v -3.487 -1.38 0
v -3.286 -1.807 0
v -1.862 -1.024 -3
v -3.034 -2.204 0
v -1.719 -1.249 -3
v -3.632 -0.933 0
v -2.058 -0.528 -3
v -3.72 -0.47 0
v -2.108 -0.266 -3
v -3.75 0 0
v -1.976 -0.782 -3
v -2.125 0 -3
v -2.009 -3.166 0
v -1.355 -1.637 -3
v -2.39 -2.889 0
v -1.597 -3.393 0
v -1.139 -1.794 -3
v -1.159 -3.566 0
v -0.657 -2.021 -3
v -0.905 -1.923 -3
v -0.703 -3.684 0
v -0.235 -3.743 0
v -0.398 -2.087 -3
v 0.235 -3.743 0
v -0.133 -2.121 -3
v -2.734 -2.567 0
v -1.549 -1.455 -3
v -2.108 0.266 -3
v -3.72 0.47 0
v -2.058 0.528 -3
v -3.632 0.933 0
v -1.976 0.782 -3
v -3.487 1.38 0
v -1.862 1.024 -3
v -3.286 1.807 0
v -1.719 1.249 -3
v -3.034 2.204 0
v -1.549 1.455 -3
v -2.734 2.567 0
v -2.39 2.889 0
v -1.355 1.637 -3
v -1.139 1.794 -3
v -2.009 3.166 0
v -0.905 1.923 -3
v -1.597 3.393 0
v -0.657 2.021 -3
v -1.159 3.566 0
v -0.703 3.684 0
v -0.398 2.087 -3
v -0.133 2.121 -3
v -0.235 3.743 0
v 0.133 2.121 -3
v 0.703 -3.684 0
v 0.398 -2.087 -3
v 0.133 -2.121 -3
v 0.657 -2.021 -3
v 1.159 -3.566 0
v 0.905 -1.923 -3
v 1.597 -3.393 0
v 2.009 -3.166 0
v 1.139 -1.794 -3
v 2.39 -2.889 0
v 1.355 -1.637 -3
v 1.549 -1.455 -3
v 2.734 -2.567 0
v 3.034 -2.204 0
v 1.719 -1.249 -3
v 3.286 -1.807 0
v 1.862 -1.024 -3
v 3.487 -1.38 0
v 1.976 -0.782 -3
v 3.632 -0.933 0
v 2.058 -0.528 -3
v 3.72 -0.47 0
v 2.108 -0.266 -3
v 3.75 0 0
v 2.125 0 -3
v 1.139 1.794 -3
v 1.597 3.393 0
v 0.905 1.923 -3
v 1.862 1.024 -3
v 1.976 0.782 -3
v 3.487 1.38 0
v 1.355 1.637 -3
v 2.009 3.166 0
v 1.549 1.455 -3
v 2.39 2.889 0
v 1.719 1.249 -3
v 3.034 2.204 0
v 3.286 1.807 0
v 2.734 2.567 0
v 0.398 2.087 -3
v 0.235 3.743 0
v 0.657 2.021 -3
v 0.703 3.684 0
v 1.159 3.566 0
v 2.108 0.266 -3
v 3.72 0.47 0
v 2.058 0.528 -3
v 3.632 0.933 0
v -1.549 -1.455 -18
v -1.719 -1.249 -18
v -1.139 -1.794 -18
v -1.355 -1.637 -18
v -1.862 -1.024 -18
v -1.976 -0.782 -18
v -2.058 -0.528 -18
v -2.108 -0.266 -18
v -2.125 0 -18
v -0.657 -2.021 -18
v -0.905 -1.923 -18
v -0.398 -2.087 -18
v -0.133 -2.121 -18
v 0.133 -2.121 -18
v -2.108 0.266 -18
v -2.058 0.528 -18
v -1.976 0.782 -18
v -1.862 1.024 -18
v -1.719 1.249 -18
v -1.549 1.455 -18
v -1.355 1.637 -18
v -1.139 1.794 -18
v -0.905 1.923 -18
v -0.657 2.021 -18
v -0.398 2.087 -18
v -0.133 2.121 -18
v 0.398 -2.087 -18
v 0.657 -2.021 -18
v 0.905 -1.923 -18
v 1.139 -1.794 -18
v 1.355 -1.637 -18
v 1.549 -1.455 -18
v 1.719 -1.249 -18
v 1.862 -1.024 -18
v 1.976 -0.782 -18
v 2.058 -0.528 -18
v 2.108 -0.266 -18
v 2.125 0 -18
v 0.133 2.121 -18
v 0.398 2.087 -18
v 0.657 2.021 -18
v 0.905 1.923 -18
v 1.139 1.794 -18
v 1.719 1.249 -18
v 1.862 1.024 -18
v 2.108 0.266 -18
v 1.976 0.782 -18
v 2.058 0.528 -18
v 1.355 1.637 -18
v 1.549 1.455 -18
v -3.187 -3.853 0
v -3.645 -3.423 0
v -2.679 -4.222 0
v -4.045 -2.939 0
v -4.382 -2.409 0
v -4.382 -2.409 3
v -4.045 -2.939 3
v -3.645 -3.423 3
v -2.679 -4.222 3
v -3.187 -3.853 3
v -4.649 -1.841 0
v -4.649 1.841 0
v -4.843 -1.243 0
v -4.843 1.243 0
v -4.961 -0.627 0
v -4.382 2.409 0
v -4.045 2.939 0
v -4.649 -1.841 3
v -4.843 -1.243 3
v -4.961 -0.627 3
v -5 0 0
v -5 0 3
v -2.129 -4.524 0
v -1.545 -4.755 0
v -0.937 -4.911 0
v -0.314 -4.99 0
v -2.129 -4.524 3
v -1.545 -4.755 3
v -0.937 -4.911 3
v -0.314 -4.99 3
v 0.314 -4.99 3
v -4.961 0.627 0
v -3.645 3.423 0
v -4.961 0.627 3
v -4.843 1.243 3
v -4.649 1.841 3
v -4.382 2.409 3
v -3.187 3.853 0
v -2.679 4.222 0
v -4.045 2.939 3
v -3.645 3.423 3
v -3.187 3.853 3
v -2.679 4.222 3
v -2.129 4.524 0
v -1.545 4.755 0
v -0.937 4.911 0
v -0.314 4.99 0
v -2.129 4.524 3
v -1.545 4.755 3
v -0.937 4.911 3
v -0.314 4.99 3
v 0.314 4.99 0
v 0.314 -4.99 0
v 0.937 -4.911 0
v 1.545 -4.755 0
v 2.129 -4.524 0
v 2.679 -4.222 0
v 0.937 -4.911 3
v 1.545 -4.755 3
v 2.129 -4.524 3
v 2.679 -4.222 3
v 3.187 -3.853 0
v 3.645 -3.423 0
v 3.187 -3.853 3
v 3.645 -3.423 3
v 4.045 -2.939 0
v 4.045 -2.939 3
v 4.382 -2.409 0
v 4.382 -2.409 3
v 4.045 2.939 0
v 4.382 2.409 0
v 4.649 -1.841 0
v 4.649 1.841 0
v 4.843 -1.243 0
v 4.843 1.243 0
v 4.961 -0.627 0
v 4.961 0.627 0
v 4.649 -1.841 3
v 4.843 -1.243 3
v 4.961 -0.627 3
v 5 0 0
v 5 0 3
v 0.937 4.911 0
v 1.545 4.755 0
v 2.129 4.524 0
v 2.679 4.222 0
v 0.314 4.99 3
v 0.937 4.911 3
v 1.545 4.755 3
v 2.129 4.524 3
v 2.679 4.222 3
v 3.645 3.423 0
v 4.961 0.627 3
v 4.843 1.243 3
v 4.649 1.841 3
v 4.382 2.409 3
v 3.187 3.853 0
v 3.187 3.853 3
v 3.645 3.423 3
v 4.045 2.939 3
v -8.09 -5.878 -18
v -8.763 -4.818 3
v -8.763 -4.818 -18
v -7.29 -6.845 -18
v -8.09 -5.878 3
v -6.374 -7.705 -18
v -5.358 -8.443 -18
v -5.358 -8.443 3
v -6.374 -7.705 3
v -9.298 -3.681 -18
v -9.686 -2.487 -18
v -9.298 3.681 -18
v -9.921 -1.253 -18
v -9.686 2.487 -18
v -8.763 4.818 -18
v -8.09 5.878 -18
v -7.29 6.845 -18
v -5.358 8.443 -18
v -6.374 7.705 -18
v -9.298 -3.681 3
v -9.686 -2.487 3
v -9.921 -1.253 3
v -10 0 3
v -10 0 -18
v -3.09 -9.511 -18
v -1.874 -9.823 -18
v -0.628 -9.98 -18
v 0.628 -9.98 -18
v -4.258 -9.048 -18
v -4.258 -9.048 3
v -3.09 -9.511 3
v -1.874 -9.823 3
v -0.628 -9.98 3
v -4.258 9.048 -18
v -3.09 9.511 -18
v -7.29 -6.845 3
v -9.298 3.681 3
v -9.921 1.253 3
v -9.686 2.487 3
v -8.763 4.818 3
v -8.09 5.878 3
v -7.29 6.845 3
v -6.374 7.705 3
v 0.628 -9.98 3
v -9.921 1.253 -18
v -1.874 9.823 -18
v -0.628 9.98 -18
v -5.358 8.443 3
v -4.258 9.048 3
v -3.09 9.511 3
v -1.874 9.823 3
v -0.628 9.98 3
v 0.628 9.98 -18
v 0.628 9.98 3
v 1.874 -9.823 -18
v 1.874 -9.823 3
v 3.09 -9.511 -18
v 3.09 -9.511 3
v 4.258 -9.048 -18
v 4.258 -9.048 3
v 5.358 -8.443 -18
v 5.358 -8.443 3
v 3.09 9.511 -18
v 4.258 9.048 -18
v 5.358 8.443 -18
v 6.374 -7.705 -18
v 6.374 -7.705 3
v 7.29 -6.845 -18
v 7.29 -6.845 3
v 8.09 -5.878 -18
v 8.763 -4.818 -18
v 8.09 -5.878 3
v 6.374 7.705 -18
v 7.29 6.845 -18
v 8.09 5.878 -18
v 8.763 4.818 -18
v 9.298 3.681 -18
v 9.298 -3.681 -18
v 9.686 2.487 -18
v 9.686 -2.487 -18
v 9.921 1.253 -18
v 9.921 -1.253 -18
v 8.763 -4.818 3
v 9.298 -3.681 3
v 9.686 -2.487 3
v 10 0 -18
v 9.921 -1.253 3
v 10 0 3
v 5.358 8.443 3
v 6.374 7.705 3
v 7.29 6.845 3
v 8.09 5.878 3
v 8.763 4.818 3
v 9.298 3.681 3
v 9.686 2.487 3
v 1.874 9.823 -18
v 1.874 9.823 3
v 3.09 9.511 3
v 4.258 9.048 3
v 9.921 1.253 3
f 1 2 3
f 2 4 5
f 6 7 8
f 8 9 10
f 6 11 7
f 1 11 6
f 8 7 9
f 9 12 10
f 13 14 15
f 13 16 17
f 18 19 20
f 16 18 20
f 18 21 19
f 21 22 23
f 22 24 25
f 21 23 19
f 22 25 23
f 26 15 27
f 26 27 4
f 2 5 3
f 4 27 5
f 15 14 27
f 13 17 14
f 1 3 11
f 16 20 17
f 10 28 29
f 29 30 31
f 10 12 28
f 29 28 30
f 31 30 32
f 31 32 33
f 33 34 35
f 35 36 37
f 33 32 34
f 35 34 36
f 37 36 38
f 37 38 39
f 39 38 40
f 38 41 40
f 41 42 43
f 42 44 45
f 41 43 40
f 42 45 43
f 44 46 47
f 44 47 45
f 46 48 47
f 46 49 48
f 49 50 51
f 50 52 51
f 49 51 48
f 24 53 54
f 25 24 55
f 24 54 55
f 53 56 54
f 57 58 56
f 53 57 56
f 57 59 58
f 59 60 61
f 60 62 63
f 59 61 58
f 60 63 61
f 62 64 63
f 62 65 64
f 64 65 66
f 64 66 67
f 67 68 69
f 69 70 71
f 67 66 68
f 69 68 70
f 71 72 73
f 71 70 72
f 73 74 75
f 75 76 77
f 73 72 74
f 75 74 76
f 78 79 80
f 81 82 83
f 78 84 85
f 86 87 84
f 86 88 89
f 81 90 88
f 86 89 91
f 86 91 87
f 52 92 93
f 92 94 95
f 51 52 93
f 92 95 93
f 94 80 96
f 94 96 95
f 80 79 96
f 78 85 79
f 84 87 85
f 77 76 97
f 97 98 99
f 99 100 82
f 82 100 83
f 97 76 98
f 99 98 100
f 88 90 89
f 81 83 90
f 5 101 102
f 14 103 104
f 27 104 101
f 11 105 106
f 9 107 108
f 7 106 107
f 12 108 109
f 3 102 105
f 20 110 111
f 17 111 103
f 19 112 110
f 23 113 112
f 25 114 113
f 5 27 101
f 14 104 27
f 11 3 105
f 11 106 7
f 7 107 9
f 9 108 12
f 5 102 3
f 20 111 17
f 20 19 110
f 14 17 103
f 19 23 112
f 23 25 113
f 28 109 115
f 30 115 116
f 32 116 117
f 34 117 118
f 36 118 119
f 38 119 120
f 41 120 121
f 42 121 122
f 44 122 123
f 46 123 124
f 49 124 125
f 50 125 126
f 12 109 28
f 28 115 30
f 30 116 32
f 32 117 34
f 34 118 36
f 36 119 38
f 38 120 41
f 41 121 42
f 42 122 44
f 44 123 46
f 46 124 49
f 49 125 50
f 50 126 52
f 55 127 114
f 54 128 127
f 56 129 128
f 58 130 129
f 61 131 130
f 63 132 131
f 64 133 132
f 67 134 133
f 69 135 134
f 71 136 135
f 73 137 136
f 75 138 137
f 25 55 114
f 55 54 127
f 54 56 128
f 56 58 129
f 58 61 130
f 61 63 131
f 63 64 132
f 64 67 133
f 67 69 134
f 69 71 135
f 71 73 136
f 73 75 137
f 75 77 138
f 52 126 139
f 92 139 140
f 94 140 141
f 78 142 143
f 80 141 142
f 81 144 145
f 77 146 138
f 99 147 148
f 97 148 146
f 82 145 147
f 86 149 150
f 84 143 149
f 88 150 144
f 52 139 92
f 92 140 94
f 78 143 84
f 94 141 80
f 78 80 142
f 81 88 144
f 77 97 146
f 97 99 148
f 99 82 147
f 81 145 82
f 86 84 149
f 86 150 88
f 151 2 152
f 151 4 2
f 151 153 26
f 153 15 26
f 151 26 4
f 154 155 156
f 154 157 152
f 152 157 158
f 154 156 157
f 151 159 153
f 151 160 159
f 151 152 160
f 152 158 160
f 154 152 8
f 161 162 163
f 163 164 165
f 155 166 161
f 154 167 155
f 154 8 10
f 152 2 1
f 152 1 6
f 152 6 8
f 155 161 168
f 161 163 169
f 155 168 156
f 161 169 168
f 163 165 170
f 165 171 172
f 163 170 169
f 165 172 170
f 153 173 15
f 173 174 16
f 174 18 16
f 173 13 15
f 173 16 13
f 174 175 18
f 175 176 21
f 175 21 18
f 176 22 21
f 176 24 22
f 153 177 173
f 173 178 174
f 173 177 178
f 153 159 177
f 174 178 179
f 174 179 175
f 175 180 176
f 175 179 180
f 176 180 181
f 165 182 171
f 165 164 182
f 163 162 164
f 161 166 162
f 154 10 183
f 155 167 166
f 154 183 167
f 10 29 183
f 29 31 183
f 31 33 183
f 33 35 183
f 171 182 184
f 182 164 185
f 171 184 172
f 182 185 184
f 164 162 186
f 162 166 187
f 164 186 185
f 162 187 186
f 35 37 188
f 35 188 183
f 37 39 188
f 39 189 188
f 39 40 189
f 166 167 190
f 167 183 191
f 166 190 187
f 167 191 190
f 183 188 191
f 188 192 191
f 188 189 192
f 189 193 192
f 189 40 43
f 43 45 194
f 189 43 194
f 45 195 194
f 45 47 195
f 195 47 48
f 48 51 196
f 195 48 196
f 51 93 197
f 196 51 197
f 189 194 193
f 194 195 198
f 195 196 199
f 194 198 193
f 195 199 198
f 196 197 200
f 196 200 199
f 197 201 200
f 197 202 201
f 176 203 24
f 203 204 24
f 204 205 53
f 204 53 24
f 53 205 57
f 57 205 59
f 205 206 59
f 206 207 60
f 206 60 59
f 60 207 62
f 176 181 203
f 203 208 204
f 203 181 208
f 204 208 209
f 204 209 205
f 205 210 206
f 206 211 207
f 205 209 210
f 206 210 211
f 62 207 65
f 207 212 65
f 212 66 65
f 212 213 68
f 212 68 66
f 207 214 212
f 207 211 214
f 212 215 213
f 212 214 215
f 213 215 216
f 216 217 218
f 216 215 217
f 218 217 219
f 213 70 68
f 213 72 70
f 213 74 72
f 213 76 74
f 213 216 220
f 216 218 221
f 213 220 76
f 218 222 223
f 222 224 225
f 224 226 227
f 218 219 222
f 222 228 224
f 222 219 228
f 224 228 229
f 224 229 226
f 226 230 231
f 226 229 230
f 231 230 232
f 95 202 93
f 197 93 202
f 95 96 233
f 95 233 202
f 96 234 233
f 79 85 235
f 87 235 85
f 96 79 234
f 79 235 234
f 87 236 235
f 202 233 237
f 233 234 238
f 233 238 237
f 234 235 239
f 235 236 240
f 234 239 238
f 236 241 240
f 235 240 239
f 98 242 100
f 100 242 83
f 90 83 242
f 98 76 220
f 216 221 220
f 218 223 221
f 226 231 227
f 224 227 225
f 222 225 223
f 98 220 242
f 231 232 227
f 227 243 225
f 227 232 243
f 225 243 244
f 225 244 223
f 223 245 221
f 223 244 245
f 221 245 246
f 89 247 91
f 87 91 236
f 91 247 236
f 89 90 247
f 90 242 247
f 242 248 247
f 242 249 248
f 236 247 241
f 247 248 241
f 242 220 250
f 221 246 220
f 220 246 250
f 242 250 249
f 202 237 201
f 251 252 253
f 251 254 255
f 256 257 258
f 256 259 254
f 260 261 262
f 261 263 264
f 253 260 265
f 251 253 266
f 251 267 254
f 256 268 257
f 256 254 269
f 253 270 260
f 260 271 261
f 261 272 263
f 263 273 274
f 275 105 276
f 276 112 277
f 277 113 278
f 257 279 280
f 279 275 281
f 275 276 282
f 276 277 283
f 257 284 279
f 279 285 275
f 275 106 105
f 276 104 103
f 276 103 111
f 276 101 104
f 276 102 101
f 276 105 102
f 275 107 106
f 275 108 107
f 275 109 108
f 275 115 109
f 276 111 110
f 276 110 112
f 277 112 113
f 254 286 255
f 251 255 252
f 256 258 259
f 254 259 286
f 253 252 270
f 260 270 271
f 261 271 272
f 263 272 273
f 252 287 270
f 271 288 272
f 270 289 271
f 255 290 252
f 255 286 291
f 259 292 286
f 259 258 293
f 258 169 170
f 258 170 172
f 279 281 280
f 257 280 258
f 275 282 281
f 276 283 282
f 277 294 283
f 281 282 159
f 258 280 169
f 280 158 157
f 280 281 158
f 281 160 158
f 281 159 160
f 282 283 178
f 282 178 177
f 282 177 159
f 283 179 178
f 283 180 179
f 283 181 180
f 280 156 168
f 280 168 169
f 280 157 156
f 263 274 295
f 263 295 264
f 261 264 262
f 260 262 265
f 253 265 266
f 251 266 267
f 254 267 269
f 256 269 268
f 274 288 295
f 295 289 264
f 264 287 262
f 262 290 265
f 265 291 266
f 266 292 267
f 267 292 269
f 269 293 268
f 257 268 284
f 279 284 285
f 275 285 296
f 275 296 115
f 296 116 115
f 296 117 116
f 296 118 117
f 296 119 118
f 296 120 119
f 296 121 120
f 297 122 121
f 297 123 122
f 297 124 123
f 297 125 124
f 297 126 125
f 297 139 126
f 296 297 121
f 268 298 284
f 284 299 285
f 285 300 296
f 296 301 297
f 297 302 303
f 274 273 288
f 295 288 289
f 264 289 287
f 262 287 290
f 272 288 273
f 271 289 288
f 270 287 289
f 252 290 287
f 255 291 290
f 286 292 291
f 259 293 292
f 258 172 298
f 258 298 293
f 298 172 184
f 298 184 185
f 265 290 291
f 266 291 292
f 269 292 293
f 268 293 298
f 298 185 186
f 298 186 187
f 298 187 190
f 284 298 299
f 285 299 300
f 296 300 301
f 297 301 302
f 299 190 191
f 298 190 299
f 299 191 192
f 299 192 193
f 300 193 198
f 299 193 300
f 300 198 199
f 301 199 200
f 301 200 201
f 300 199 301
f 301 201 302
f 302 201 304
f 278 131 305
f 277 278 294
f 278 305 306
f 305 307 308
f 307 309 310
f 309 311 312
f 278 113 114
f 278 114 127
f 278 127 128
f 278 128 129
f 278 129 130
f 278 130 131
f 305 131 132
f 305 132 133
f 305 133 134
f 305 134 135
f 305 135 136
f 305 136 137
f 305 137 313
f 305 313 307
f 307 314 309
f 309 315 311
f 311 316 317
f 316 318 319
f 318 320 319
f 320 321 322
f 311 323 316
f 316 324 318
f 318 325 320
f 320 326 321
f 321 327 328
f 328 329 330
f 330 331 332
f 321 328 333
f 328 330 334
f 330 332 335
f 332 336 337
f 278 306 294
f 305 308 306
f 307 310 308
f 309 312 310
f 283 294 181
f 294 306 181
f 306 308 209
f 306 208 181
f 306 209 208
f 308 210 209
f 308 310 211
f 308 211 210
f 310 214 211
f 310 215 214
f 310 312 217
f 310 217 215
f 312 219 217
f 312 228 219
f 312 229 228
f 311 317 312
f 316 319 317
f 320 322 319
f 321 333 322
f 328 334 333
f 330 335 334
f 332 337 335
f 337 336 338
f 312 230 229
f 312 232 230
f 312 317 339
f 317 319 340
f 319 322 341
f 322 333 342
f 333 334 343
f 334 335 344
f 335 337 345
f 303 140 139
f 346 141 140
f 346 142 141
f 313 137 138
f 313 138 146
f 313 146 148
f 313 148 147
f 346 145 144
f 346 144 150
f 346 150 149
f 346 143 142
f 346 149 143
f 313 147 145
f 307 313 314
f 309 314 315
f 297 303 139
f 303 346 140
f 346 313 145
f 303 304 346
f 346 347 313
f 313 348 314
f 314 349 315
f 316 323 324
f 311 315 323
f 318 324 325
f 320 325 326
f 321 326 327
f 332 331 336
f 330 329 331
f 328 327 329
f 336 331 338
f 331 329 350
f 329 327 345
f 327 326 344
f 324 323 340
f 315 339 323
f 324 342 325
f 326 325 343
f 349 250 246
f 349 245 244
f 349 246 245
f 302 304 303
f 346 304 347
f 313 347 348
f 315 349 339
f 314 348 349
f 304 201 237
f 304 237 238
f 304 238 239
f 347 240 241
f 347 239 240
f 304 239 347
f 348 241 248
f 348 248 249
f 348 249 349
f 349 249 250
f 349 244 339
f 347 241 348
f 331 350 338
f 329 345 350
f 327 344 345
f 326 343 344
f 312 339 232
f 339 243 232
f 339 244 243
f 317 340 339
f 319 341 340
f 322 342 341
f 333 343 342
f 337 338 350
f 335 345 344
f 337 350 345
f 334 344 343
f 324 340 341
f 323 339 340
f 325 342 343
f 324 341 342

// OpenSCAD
$fn = 50;

difference() {
	union() {
		translate(v = [0, 0, -18.0]) {
			cylinder(h = 21, r = 10.0);
		}
	}
	union() {
		translate(v = [0, 0, 0]) {
			rotate(a = [0, 0, 0]) {
				difference() {
					union() {
						translate(v = [0, 0, -21.0]) {
							cylinder(h = 21, r = 2.0);
						}
						translate(v = [0, 0, -3]) {
							cylinder(h = 3, r1 = 2.125, r2 = 3.75);
						}
						translate(v = [0, 0, -21.0]) {
							cylinder(h = 21, r = 2.125);
						}
						translate(v = [0, 0, -21.0]) {
							cylinder(h = 21, r = 2.0);
						}
					}
					union();
				}
			}
		}
		#cylinder(h = 3, r = 5.0);
	}
}
